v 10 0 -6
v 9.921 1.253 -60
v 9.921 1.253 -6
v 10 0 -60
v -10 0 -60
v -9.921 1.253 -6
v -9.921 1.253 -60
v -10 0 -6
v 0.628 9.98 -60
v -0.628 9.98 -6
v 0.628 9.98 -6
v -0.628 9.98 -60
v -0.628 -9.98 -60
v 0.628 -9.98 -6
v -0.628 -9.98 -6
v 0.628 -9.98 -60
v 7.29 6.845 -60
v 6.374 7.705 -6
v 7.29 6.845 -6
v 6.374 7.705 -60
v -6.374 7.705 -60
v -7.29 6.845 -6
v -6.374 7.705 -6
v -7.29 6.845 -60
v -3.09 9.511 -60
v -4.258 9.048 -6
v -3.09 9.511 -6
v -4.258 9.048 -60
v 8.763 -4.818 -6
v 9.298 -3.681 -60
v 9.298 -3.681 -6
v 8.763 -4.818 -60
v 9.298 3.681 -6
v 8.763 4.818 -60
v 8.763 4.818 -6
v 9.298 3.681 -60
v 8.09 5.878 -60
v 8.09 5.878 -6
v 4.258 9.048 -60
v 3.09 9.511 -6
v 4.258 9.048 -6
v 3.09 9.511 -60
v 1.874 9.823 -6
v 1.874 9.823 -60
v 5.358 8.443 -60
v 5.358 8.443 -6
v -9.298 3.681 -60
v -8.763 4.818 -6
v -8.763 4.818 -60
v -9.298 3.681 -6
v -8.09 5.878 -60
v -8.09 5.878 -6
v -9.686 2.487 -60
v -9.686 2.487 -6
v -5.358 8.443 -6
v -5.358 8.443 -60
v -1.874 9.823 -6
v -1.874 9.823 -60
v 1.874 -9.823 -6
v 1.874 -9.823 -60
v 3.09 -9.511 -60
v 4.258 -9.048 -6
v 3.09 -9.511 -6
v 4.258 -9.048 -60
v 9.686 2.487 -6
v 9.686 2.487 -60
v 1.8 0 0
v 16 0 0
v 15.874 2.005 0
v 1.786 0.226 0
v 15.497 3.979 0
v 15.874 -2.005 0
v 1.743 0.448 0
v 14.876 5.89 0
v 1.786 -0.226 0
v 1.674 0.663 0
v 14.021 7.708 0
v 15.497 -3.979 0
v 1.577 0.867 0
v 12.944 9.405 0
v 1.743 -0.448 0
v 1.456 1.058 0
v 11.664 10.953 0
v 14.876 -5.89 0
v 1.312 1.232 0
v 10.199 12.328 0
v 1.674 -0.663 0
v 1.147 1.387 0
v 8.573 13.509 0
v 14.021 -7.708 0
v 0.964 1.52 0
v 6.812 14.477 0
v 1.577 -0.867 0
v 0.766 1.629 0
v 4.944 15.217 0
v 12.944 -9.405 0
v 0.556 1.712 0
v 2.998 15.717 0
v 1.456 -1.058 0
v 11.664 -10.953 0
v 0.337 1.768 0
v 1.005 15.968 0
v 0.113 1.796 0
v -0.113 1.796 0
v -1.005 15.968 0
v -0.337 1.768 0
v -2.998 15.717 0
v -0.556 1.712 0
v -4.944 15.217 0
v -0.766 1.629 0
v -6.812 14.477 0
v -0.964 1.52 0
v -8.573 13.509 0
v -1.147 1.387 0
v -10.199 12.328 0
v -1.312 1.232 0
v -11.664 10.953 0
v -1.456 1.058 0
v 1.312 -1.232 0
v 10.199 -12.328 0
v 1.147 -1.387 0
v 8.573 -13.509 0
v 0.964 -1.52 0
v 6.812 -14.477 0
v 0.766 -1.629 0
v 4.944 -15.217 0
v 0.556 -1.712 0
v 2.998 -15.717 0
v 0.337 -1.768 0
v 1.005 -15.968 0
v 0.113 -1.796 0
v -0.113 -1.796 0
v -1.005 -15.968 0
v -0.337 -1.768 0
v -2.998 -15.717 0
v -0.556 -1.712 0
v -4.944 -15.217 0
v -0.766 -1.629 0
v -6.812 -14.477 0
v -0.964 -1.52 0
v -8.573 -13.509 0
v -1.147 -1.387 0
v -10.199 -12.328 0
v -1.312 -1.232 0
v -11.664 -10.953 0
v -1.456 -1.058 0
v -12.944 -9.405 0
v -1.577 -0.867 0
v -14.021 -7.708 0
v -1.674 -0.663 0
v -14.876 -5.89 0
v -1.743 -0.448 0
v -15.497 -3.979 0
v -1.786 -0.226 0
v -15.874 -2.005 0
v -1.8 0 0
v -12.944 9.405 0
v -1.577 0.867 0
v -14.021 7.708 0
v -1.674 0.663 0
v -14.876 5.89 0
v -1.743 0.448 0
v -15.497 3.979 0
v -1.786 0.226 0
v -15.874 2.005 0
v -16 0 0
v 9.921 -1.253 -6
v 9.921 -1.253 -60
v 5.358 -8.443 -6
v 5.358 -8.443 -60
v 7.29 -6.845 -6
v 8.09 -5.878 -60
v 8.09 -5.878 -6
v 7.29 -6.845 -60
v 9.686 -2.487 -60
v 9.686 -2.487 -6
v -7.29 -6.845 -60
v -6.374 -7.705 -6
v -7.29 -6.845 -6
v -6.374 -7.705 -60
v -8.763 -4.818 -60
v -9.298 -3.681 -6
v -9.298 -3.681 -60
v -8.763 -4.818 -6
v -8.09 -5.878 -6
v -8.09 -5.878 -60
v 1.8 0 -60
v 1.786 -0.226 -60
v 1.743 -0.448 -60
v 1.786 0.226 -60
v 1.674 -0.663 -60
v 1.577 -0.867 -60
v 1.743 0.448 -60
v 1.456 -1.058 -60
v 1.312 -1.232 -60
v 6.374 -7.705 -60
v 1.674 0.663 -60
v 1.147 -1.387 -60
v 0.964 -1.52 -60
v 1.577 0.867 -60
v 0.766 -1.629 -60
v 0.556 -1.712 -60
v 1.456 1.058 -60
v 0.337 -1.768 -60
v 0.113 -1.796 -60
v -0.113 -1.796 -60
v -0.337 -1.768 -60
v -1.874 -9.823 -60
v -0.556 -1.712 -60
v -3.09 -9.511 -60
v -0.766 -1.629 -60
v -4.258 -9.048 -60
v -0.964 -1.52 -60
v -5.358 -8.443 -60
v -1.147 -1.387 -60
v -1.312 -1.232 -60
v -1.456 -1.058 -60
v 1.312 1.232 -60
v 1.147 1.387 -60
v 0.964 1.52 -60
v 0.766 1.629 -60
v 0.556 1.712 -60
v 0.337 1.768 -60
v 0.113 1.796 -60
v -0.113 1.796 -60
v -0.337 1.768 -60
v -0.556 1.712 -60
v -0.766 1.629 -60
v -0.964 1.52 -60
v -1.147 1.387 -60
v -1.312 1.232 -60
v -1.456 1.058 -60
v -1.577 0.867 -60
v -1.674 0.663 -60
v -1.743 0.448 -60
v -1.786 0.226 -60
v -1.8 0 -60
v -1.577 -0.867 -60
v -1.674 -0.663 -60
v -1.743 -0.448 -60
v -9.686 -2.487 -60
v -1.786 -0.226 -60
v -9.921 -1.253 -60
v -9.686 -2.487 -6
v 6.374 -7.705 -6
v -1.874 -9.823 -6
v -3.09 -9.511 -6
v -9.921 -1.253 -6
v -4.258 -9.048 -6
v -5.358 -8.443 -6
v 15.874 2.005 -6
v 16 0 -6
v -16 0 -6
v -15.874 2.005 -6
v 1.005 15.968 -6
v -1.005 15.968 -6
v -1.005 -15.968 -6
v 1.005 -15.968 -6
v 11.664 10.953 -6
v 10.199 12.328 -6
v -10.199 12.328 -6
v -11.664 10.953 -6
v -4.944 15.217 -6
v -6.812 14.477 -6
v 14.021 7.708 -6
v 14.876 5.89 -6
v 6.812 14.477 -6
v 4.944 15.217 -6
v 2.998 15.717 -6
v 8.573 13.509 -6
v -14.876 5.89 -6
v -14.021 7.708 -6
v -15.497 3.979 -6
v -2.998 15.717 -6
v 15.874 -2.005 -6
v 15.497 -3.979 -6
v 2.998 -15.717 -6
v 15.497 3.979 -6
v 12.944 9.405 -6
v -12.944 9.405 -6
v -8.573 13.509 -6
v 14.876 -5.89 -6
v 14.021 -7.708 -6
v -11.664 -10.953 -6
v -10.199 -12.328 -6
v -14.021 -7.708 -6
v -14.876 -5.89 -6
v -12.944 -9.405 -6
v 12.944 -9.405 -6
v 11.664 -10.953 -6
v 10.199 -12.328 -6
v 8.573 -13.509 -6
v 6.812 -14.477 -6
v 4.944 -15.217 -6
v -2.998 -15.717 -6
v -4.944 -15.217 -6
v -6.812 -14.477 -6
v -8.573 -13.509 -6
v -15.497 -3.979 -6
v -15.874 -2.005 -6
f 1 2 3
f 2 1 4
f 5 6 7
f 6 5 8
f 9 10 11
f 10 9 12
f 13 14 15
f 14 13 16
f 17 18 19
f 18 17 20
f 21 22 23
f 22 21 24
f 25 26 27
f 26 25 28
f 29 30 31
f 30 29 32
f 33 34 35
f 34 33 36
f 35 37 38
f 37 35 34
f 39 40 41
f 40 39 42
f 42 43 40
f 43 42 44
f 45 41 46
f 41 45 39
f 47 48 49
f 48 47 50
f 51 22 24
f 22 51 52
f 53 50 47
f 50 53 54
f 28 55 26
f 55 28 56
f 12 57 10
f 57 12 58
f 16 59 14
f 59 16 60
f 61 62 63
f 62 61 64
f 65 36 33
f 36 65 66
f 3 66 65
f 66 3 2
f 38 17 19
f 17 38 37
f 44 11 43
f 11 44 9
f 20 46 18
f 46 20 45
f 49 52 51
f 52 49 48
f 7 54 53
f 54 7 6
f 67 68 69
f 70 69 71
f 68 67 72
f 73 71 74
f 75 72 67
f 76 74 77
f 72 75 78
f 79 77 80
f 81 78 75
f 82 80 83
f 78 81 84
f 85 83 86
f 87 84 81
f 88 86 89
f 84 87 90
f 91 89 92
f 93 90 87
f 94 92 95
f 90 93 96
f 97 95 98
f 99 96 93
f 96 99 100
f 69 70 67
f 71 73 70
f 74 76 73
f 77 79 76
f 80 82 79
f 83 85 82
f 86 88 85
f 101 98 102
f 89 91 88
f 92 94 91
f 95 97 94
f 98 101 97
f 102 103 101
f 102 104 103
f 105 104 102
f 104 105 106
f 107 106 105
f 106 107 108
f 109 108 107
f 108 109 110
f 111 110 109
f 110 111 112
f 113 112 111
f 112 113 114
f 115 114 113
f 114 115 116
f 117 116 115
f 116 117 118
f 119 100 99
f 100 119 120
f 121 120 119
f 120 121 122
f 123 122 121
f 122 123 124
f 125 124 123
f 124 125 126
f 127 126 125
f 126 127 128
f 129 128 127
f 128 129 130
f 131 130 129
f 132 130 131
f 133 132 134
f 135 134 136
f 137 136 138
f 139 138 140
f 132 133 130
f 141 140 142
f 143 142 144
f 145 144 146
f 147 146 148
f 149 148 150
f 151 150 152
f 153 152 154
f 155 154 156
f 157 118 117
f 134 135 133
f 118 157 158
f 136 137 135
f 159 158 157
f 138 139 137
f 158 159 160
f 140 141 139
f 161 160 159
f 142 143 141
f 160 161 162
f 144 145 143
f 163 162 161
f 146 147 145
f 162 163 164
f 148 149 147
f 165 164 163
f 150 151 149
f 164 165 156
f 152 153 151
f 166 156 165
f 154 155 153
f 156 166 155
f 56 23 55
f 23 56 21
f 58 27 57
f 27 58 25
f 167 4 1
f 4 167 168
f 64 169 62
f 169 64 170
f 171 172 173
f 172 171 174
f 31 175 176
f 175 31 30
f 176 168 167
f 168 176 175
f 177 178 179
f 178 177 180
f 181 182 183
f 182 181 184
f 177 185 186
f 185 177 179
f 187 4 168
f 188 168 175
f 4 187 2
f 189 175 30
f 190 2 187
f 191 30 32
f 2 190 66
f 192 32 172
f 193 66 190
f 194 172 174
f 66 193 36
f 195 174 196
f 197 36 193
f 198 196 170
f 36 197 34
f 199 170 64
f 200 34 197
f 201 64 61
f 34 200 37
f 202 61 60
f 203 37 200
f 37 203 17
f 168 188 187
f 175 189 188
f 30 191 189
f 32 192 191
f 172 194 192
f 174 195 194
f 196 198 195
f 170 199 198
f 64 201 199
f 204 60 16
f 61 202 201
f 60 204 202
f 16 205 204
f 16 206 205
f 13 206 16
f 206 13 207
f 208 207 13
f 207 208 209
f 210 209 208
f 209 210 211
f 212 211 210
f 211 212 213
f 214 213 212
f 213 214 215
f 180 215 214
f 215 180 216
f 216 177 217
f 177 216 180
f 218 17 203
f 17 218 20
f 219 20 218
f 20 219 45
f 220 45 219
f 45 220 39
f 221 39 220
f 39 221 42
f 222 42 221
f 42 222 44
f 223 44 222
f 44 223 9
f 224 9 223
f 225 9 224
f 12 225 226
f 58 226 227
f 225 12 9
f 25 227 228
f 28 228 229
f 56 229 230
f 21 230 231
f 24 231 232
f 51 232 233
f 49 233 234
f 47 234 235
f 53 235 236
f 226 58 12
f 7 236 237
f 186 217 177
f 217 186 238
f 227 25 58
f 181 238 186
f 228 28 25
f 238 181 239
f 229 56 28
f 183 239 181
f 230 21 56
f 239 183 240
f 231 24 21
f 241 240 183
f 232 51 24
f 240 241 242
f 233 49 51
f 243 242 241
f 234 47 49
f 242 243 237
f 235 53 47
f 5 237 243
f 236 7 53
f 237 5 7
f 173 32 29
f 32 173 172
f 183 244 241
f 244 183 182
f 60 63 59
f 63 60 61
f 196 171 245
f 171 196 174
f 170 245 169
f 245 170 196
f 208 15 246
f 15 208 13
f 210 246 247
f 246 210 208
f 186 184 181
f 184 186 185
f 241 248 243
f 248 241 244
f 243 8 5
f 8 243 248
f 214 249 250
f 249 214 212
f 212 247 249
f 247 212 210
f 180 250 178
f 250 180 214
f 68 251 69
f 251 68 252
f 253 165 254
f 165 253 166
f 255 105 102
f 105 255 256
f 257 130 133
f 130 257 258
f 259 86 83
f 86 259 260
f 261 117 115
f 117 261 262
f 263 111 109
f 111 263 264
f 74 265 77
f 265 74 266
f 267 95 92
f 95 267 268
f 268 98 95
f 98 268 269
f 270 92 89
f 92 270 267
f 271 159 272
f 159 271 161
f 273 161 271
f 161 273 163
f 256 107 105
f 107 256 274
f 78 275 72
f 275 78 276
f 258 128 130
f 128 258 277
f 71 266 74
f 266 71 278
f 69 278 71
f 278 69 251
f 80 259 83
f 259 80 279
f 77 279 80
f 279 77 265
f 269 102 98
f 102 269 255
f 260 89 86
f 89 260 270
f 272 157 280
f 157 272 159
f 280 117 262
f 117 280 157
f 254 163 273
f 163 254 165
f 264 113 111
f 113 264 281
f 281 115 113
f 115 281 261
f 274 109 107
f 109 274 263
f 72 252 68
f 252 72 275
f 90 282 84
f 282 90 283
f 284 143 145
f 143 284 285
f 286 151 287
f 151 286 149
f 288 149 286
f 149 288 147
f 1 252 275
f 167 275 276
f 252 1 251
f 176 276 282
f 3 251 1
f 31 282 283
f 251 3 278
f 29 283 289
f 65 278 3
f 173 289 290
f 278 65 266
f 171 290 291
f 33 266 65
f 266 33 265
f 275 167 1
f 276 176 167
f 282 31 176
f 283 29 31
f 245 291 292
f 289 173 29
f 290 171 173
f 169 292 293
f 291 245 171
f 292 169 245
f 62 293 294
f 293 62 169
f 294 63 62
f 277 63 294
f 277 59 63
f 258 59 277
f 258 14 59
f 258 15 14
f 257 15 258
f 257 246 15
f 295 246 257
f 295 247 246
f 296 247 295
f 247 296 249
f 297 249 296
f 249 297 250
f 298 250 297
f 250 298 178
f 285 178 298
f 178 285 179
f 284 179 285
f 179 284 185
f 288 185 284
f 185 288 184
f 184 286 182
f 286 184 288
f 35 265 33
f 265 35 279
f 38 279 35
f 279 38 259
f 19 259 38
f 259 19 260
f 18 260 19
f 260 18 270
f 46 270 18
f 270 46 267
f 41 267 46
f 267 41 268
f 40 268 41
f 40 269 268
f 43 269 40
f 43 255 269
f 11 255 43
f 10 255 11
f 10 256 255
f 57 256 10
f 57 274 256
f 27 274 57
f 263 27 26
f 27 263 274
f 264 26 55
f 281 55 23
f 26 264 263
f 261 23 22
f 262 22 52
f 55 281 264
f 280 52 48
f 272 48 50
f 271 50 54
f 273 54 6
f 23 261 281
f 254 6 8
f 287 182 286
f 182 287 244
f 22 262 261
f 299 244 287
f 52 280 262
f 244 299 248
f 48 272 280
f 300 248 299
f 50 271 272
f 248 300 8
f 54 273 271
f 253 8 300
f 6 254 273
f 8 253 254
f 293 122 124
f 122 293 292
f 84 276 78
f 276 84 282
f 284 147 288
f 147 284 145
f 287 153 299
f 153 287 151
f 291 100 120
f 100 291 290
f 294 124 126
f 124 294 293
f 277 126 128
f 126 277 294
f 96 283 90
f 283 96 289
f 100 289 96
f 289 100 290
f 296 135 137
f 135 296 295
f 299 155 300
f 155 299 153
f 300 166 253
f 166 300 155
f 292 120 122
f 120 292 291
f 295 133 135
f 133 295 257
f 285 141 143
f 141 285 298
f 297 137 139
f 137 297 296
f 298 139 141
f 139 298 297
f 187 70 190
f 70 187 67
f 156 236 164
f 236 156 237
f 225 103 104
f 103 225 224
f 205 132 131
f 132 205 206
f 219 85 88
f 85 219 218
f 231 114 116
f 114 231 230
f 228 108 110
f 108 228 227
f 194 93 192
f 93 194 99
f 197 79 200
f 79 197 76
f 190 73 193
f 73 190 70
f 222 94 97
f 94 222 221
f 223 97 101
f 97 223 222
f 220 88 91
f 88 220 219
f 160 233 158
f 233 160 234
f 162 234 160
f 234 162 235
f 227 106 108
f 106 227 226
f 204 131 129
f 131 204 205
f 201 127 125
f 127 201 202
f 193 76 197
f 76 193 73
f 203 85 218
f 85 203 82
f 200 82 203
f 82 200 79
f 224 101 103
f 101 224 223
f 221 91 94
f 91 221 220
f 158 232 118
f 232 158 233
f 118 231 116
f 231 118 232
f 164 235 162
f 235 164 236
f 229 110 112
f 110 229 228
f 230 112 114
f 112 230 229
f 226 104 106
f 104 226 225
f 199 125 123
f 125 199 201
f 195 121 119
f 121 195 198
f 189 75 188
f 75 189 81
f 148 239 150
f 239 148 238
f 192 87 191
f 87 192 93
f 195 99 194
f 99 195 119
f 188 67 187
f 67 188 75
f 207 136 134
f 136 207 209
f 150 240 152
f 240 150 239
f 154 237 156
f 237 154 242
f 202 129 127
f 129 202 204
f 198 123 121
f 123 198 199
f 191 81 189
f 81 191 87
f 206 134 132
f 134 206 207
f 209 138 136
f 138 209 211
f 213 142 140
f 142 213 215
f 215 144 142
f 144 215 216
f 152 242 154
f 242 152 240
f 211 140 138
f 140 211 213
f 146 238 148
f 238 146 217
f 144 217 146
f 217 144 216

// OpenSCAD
$fn = 50;


difference() {
	union() {
		translate(v = [0, 0, -60.0000000000]) {
			cylinder(h = 60, r = 10.0000000000);
		}
		translate(v = [0, 0, -6.0000000000]) {
			cylinder(h = 6, r = 16.0000000000);
		}
	}
	union() {
		#translate(v = [0, 0, -60]) {
			cylinder(h = 60, r = 1.8000000000);
		}
	}
}
